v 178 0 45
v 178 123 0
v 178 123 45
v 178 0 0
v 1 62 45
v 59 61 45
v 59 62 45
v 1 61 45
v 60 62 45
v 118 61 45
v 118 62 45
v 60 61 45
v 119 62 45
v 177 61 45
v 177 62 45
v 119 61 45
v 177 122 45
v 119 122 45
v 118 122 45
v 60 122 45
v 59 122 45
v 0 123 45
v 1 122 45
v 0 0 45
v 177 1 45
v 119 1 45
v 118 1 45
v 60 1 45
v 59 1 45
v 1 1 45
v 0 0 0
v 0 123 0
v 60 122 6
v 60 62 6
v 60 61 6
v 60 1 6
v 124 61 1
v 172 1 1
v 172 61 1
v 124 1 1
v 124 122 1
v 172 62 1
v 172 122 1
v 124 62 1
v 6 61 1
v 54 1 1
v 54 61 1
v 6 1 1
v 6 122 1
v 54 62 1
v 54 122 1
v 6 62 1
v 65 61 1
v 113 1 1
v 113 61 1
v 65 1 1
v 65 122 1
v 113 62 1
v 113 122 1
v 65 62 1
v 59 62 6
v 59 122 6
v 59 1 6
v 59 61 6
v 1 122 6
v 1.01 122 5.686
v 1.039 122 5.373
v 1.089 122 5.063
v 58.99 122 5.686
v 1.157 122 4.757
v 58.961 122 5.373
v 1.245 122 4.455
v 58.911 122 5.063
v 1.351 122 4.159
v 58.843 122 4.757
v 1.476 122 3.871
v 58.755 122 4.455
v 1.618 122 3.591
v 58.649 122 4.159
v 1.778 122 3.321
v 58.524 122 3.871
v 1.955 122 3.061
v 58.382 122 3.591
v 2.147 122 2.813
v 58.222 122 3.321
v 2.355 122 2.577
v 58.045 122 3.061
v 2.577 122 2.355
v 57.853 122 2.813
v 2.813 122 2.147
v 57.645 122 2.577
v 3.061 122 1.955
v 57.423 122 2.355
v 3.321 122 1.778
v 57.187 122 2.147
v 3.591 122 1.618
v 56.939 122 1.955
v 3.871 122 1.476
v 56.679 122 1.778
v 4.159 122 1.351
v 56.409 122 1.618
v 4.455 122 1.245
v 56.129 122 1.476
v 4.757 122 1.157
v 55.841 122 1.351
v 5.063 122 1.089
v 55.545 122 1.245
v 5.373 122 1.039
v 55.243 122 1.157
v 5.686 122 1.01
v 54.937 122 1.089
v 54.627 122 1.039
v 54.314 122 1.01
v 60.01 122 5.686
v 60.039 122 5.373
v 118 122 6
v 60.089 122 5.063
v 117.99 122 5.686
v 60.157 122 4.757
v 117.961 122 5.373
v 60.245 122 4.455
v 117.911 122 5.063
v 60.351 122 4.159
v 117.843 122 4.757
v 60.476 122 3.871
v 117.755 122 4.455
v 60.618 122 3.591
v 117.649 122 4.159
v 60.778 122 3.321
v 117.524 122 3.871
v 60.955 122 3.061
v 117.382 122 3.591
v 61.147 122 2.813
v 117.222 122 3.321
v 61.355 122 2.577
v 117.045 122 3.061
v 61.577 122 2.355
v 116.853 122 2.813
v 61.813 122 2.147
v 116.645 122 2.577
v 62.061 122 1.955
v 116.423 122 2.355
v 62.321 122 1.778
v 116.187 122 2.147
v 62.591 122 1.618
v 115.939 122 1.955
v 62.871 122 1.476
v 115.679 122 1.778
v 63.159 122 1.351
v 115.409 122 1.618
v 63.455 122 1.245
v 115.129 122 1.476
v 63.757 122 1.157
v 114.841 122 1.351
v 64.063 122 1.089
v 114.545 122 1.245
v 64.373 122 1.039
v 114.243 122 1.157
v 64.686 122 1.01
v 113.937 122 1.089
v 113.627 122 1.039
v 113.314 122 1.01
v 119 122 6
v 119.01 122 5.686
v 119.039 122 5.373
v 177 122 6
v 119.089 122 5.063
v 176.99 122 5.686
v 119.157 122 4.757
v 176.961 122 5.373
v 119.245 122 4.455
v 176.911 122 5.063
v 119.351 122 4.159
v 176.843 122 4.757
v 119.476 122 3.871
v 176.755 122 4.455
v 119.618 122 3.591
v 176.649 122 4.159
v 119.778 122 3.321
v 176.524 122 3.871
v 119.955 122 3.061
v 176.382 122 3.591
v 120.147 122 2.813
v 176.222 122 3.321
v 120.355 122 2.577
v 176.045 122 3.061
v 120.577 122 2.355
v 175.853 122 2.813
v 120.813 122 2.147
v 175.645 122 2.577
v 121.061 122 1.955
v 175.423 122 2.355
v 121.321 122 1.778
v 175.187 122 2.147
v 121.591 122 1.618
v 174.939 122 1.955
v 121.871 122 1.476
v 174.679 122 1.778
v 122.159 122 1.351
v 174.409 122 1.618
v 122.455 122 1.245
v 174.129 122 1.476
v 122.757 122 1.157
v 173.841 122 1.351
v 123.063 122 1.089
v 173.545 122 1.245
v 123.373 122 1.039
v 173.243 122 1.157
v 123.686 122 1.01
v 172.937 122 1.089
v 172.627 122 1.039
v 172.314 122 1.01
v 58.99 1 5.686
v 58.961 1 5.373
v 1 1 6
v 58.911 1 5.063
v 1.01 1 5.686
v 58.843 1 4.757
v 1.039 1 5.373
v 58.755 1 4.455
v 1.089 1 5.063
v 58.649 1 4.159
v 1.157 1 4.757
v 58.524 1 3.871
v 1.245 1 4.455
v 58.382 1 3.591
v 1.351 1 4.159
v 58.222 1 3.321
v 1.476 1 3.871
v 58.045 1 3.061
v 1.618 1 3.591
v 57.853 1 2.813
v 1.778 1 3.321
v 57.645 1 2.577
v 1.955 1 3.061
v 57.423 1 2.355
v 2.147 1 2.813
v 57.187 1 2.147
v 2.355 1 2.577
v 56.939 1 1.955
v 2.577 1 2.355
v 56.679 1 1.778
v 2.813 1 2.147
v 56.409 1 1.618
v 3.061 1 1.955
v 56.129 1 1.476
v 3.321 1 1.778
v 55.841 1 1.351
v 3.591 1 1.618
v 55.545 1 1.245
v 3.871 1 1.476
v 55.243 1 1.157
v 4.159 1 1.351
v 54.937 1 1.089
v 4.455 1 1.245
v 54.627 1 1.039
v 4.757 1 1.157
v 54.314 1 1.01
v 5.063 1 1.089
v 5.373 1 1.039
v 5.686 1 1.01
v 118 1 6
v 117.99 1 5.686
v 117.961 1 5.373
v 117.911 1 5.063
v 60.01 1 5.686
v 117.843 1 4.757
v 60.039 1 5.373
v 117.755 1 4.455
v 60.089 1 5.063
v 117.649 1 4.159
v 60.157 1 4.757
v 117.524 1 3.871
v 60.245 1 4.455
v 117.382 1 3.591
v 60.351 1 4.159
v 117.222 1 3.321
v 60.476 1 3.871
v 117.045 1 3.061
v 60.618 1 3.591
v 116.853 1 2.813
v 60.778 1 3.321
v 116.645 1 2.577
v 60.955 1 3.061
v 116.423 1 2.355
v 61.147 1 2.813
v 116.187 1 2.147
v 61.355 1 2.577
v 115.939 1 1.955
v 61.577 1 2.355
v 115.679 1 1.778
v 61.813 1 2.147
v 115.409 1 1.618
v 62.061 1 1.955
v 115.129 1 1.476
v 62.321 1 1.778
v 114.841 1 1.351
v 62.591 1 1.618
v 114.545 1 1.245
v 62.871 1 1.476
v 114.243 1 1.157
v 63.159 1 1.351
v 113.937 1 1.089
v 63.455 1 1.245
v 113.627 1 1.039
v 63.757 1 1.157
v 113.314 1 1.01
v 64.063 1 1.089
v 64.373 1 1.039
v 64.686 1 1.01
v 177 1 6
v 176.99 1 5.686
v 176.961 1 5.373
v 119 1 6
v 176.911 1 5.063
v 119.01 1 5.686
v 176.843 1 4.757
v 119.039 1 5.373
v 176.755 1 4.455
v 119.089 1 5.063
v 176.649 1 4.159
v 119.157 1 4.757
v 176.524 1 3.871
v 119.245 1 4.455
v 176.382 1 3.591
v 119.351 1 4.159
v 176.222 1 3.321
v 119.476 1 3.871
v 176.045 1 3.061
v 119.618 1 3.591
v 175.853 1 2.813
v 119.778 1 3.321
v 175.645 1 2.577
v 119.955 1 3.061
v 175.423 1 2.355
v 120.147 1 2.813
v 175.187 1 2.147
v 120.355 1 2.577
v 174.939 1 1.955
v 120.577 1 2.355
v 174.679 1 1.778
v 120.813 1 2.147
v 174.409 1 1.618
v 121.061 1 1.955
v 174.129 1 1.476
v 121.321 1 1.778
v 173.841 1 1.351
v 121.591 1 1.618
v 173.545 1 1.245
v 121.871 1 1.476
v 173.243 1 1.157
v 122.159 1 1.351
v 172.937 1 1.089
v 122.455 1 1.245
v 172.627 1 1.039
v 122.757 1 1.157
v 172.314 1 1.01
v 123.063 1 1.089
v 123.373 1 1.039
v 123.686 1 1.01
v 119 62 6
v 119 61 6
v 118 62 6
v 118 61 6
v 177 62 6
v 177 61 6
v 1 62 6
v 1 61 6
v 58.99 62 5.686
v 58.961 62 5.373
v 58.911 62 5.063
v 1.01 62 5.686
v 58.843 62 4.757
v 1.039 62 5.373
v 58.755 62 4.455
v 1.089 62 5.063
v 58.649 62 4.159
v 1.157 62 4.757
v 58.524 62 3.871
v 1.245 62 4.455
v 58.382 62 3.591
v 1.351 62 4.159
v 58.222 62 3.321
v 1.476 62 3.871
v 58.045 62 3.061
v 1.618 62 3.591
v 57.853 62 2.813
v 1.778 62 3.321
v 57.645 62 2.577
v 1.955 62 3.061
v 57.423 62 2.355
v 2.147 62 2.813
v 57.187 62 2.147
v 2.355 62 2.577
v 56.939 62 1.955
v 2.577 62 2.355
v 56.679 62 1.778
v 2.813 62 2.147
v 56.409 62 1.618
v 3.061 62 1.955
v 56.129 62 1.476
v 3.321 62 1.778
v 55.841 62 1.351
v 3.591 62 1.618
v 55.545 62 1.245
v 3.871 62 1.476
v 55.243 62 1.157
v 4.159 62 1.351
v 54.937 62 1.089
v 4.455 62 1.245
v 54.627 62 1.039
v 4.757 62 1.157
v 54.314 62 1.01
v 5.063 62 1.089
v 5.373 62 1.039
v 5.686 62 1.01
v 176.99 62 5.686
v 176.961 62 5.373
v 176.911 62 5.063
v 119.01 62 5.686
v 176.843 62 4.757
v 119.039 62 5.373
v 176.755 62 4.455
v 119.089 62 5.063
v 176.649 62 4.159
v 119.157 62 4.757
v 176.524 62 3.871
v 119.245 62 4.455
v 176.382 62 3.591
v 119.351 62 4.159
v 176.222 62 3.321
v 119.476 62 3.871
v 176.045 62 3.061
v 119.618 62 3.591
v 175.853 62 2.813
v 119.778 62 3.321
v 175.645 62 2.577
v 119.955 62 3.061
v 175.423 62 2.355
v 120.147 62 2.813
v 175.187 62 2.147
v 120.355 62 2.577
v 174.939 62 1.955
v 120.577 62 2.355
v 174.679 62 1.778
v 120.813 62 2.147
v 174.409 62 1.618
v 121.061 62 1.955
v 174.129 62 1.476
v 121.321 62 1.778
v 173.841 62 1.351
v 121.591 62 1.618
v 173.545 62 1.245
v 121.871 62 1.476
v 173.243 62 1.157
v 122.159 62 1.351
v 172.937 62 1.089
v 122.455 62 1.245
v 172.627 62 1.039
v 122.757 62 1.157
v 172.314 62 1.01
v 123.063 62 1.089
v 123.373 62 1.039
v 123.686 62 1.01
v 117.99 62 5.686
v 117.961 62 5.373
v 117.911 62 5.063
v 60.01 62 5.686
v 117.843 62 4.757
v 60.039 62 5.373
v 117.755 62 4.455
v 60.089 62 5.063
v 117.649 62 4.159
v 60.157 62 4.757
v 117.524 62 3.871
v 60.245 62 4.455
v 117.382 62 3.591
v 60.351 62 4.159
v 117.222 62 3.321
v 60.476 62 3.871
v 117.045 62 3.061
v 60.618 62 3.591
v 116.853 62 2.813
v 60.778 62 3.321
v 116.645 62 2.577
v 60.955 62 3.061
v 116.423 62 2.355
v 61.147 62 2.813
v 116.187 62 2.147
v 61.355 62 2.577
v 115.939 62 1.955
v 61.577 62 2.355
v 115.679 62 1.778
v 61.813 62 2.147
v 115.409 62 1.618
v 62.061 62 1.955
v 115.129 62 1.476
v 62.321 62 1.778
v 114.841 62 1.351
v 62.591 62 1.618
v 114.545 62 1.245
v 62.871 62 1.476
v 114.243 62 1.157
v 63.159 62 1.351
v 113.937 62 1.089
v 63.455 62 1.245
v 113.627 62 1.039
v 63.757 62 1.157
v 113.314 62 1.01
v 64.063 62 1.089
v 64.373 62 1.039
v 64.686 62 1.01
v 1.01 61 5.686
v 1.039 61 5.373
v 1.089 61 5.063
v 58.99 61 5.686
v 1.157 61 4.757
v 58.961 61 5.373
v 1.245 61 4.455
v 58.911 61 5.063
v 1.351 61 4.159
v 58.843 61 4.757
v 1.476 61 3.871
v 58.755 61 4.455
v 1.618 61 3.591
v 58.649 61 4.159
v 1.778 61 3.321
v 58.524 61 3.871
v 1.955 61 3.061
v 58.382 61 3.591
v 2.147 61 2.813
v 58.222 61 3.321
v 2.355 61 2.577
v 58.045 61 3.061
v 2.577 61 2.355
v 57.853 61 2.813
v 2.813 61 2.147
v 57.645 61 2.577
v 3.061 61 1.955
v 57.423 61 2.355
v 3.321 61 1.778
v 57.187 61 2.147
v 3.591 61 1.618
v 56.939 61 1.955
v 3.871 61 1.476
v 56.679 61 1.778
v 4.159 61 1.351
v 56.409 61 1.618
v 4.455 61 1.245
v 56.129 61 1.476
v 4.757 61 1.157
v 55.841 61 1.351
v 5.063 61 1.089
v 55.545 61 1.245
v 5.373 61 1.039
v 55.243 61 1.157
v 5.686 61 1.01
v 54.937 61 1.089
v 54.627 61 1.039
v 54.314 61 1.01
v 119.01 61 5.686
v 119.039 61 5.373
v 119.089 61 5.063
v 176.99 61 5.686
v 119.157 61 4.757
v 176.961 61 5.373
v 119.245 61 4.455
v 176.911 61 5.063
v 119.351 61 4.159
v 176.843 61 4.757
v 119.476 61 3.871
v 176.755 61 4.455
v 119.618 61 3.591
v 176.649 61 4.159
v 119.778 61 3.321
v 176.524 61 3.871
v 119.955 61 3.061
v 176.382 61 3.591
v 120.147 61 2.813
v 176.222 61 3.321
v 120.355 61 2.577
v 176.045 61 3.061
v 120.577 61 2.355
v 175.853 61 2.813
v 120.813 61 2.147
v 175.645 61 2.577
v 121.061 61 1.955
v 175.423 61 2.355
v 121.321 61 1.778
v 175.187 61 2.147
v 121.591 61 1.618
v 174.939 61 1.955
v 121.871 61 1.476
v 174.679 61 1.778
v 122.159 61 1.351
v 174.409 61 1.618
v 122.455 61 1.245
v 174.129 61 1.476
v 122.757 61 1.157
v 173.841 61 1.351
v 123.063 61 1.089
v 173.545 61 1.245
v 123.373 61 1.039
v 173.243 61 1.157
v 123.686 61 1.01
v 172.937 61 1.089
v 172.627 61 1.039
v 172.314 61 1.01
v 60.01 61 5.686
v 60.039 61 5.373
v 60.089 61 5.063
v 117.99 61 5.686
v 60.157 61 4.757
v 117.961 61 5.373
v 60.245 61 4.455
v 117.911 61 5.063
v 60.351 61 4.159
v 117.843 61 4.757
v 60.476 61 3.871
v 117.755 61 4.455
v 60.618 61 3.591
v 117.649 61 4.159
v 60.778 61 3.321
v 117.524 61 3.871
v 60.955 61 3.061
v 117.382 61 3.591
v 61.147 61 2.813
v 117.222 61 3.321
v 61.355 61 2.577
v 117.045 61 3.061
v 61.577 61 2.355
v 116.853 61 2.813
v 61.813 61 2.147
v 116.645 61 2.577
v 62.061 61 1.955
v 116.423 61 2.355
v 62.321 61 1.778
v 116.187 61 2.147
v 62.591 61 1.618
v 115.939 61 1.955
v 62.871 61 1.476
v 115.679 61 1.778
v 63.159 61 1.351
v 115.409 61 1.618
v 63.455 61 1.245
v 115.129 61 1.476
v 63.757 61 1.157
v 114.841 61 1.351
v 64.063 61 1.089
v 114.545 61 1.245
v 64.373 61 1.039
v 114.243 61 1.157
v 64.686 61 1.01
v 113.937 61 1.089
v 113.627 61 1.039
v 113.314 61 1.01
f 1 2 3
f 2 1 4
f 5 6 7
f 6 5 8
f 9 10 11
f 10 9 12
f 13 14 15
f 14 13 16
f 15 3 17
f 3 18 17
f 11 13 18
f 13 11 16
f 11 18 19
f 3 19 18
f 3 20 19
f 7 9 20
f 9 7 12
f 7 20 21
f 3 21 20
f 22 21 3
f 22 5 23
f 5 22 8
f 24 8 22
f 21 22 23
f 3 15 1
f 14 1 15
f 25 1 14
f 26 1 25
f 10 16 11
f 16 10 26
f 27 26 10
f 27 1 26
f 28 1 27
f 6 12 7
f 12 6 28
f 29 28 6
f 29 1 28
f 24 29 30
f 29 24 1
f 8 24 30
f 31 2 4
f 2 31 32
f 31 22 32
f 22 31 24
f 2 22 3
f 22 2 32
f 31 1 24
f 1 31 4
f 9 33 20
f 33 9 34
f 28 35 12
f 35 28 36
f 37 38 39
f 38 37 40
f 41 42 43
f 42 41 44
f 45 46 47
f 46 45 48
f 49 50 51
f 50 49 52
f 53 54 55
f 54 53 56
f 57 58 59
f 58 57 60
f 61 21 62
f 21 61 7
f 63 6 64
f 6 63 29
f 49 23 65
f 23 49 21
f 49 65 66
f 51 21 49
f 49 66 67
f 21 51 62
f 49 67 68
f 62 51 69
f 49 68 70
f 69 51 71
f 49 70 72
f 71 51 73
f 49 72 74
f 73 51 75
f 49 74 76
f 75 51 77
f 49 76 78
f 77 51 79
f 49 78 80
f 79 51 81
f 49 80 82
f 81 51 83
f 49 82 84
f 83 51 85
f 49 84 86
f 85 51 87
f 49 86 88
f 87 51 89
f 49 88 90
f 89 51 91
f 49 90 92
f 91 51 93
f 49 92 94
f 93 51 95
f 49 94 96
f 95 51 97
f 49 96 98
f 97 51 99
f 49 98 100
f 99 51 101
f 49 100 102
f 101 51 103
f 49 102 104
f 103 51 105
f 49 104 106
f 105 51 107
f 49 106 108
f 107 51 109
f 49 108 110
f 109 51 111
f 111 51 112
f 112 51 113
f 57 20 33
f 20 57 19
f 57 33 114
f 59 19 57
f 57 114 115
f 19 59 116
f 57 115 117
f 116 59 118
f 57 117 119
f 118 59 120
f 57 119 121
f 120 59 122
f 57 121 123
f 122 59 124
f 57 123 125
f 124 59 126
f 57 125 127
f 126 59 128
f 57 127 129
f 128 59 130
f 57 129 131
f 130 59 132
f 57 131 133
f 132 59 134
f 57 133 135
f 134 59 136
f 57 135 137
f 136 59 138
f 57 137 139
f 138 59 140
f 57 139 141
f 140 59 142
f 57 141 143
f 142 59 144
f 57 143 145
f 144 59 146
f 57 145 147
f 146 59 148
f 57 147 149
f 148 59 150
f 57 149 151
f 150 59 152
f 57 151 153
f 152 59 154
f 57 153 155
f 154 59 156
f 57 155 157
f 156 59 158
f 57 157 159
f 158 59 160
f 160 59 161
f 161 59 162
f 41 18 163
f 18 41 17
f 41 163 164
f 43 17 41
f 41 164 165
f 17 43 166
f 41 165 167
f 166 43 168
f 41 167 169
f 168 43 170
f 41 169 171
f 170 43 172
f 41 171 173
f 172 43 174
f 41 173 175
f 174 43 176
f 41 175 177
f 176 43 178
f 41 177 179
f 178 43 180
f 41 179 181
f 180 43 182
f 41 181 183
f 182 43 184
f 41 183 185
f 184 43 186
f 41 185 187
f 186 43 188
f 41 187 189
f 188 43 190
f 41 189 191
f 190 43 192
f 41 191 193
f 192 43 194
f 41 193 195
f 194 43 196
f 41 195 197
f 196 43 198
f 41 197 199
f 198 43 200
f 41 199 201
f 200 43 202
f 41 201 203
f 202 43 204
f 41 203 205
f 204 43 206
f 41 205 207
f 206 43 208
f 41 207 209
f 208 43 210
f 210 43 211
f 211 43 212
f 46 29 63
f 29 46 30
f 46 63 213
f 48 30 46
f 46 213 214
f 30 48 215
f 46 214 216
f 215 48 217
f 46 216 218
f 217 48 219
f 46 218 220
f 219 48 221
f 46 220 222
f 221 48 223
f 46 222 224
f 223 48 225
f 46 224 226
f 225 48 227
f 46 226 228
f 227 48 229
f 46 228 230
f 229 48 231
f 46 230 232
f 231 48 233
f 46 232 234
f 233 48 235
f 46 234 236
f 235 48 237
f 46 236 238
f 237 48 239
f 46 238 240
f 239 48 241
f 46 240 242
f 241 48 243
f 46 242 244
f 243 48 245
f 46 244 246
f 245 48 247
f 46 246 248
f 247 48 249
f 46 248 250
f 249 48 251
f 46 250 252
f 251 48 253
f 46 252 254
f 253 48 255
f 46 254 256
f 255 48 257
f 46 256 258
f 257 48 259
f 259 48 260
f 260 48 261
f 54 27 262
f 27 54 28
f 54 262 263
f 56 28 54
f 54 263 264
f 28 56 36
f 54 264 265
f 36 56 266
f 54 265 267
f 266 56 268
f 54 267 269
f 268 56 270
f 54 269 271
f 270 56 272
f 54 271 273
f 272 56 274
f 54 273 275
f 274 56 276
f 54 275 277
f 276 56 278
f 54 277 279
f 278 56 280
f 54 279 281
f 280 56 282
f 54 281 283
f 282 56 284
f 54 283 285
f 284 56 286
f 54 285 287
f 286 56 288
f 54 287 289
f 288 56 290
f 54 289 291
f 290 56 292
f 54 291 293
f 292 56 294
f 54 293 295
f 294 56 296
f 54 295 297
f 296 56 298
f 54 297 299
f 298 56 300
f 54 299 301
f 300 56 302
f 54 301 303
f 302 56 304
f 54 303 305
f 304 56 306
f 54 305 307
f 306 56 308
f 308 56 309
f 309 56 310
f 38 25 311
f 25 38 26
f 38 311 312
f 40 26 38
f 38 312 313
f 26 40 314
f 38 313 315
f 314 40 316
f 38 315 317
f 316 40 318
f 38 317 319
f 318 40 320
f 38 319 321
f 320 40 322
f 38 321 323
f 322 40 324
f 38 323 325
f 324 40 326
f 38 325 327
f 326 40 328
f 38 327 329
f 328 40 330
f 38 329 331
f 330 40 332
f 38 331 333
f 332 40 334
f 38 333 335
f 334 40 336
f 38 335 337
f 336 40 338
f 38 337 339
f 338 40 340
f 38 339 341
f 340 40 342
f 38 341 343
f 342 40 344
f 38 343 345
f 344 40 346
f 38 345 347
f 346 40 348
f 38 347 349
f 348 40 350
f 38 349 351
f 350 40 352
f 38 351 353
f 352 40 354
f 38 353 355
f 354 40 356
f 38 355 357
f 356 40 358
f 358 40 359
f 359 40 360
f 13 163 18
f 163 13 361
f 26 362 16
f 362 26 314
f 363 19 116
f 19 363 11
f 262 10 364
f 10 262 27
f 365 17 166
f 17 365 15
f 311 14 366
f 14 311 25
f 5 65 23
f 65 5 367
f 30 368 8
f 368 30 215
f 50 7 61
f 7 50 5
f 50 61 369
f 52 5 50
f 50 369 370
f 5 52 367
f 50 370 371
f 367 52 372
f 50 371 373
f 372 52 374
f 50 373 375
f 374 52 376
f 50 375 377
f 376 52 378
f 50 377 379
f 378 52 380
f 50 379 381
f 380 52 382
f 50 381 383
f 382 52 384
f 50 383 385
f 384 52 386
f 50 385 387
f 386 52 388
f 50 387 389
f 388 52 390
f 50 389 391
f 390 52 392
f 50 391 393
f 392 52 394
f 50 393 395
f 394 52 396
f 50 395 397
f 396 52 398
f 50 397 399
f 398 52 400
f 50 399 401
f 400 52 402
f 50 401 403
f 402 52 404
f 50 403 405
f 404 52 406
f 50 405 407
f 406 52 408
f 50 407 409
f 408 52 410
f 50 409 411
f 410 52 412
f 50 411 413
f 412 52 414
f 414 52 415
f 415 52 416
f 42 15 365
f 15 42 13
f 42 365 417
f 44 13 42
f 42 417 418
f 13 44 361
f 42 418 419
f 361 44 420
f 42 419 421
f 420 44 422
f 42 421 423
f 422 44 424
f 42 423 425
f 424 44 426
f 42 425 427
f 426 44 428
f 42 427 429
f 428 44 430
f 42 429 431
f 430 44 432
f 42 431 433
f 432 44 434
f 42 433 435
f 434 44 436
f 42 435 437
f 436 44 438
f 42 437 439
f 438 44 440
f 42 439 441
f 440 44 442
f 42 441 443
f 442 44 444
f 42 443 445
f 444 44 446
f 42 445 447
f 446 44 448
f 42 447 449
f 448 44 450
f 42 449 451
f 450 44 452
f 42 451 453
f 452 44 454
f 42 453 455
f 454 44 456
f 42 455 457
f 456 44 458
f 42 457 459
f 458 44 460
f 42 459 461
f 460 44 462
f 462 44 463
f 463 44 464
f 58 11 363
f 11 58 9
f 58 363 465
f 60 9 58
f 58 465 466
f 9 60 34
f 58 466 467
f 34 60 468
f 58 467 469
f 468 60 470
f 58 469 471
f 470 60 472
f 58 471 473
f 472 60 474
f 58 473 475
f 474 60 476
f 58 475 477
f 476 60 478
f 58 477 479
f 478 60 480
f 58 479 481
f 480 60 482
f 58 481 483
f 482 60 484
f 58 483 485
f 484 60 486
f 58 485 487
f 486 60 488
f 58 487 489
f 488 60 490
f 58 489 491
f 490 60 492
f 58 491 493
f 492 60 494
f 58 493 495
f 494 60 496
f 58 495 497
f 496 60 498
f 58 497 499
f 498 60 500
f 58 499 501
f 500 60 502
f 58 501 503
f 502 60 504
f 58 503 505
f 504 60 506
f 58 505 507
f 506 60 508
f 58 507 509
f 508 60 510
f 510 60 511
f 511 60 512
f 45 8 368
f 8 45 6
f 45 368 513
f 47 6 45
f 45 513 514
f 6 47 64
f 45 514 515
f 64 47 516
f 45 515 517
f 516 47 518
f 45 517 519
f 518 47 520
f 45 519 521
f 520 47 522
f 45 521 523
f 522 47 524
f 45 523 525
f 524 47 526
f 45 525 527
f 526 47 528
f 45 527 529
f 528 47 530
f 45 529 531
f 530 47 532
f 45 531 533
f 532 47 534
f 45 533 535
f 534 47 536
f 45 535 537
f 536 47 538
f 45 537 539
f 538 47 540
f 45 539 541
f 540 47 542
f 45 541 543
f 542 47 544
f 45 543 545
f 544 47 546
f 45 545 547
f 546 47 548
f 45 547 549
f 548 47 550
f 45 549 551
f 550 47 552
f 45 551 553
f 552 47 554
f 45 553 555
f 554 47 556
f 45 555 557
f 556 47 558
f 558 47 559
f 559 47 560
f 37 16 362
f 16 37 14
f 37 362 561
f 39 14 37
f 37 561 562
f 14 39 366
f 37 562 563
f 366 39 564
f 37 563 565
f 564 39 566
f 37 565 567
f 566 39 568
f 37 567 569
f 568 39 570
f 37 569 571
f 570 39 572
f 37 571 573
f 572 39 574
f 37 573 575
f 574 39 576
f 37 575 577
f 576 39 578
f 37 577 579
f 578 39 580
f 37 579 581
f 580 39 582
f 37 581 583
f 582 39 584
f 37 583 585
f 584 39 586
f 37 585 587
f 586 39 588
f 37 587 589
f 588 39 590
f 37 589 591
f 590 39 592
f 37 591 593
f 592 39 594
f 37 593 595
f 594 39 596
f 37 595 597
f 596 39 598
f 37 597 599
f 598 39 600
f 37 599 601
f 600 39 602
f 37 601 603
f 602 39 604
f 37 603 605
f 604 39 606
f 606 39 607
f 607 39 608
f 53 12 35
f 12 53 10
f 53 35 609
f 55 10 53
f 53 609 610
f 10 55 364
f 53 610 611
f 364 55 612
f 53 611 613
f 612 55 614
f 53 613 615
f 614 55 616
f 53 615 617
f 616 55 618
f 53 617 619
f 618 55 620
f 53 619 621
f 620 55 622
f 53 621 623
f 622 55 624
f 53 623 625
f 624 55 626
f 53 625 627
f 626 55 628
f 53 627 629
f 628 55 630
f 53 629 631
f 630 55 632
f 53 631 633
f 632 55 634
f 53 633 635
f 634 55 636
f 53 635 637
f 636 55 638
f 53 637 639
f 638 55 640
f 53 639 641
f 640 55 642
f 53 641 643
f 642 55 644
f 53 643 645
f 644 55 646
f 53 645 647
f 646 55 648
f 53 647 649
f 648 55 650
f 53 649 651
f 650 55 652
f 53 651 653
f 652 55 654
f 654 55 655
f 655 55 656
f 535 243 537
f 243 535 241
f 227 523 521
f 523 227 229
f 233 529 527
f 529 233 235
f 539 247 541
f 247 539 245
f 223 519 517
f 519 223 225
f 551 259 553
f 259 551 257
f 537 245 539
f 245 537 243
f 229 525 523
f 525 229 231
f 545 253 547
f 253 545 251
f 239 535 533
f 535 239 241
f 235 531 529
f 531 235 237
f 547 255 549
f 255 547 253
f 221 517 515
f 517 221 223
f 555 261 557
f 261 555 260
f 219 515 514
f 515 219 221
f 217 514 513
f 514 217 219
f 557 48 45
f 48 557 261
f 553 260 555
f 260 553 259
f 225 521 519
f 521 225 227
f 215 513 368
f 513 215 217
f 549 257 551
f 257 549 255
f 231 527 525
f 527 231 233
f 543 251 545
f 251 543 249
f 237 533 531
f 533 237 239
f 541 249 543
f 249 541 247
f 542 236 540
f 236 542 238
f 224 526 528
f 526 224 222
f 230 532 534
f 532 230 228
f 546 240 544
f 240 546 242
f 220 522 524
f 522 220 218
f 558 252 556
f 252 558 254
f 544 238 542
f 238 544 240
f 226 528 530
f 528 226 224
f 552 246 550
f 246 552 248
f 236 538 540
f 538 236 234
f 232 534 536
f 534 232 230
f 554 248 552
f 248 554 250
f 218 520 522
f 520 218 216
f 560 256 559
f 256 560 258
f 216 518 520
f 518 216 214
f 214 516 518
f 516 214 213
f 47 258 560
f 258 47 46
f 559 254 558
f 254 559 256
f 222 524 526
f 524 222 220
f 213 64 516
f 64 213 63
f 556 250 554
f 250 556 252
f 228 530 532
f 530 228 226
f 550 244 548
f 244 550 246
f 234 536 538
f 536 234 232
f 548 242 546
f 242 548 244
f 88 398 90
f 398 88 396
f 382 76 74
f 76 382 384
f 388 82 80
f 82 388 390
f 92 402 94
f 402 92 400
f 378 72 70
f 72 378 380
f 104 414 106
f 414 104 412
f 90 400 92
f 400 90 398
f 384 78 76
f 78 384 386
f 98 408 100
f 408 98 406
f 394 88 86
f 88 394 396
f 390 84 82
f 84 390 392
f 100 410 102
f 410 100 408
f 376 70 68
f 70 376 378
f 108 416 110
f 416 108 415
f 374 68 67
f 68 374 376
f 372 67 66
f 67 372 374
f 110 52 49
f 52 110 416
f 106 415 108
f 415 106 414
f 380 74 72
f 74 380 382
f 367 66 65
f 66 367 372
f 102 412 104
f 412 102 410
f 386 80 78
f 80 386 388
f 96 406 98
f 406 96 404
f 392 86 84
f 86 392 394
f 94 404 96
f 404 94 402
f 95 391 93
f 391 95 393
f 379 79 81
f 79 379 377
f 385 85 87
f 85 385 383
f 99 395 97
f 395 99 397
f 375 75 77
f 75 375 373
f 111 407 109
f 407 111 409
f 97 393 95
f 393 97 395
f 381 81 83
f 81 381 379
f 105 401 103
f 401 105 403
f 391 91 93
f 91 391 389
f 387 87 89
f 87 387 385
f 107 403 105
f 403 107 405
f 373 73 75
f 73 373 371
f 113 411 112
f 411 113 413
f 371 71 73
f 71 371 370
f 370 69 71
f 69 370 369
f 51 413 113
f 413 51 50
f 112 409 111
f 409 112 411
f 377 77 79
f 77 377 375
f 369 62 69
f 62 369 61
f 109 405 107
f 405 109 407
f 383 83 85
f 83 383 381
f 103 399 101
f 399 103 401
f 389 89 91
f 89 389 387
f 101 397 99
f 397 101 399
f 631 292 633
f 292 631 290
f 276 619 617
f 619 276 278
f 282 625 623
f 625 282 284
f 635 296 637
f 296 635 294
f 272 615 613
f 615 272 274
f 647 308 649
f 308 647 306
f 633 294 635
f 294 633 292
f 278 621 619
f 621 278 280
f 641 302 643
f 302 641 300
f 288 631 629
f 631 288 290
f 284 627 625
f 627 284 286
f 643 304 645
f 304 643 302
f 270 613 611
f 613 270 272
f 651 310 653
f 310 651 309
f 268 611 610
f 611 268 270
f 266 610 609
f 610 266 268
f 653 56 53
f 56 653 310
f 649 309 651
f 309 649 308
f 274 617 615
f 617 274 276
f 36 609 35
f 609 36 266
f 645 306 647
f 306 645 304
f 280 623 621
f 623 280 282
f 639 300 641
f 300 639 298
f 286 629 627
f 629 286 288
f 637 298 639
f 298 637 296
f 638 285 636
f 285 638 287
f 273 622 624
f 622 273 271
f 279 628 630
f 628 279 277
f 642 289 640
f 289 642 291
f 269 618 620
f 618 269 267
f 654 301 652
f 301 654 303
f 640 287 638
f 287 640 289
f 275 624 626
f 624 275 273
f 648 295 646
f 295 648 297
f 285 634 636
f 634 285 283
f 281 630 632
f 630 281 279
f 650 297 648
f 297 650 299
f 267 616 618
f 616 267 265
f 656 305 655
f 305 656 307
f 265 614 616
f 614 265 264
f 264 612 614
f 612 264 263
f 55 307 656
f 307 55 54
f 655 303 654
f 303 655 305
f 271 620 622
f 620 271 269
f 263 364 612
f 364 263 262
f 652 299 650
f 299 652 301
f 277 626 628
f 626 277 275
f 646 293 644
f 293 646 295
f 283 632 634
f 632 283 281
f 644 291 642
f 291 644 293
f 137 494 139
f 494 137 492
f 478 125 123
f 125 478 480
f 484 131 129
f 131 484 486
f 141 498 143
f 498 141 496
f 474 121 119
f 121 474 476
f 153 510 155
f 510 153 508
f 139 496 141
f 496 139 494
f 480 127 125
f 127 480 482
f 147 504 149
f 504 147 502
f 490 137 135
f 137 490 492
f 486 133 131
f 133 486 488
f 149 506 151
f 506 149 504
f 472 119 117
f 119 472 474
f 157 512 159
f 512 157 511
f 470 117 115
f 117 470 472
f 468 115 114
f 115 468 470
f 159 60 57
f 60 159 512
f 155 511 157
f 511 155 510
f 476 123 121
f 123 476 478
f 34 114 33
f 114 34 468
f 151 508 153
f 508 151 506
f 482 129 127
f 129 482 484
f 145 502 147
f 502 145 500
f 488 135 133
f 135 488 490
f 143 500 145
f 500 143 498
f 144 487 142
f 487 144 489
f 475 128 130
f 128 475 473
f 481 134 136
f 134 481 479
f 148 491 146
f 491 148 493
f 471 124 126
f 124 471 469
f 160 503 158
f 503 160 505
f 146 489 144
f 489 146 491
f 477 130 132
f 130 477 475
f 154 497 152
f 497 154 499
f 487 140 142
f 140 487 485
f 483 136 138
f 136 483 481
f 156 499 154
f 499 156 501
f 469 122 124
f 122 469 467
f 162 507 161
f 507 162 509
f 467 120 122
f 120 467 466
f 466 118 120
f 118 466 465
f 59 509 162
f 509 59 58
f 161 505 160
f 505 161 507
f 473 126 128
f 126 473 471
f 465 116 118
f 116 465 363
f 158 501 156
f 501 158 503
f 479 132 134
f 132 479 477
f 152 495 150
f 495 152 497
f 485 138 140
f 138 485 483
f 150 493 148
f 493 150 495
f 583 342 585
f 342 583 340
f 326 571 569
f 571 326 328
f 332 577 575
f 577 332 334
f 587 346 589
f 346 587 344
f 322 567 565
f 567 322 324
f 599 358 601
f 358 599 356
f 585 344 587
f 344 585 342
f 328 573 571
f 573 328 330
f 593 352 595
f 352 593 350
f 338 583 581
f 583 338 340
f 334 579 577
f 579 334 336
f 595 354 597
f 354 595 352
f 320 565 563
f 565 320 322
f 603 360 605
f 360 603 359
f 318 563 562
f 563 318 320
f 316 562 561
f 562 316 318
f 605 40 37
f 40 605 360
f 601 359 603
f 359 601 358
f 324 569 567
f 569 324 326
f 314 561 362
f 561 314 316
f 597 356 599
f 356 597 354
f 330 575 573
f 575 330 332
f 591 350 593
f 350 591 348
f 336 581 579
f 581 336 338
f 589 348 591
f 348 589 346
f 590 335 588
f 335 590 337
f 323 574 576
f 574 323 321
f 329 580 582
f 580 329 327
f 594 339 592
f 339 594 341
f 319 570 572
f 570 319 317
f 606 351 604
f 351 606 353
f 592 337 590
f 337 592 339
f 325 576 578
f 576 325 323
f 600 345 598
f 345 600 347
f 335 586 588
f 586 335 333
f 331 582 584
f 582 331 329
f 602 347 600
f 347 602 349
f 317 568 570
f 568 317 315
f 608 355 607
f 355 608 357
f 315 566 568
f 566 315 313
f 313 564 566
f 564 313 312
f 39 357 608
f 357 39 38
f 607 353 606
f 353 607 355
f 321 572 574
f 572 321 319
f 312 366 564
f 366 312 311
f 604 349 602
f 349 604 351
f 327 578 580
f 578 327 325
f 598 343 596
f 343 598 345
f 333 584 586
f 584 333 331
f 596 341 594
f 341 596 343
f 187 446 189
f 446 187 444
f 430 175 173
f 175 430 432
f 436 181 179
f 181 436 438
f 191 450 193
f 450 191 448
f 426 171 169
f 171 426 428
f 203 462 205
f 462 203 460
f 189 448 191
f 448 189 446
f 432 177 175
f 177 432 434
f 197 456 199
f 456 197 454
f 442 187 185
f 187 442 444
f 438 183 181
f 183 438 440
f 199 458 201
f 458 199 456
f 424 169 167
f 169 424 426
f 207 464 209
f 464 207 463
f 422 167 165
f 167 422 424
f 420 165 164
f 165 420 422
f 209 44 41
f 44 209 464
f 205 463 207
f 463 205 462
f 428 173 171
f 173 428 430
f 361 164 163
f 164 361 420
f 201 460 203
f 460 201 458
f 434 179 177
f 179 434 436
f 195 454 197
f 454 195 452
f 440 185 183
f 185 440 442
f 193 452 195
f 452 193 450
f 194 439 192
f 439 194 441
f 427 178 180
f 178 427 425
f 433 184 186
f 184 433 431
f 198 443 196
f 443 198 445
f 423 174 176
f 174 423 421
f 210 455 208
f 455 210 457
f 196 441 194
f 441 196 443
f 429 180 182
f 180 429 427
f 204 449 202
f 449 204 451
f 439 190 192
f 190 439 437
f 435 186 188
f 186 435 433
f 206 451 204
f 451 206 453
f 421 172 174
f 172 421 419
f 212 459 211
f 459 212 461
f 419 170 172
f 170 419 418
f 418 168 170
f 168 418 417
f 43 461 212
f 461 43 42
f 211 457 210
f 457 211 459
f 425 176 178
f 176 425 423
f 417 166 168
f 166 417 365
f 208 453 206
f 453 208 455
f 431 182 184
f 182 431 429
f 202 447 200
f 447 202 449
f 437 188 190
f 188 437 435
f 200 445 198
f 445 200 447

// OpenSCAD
include <boardgame_insert_toolkit_lib.2.scad>;

// determines whether lids are output.
g_b_print_lid = true;

// determines whether boxes are output.
g_b_print_box = true; 

// Focus on one box
g_isolated_print_box = ""; 

// Used to visualize how all of the boxes fit together. 
g_b_visualization = false;          
        
// this is the outer wall thickness. 
//Default = 1.5mm
g_wall_thickness = 1.0;

// The tolerance value is extra space put between planes of the lid and box that fit together.
// Increase the tolerance to loosen the fit and decrease it to tighten it.
//
// Note that the tolerance is applied exclusively to the lid.
// So if the lid is too tight or too loose, change this value ( up for looser fit, down for tighter fit ) and 
// you only need to reprint the lid.
// 
// The exception is the stackable box, where the bottom of the box is the lid of the box below,
// in which case the tolerance also affects that box bottom.
//
g_tolerance = 0.15;

// This adjusts the position of the lid detents downward. 
// The larger the value, the bigger the gap between the lid and the box.
g_tolerance_detents_pos = 0.1;

aw_size_x = 178.0; // 180.0; // 308.0 - 40.0 - 40.0 - 24.0 - 24.0;
aw_size_y = 123.0;
aw_size_z = 45.0;


data =
  [
    [
      "simple box",
      [
        [ BOX_SIZE_XYZ, [aw_size_x, aw_size_y, aw_size_z] ],
        [ BOX_NO_LID_B, t],
        [
          BOX_COMPONENT,
          [
            [
              CMP_COMPARTMENT_SIZE_XYZ,
              [
                58, // (aw_size_x - 1.0 - 1.0 - 1.0 - 1.0) / 3.0,
                60, // (aw_size_y - 1.0 - 1.0 - 1.0) / 2,
                aw_size_z - g_wall_thickness
              ]
            ],
            [ CMP_NUM_COMPARTMENTS_XY, [3, 2] ],
            [ CMP_SHAPE, FILLET ],
            [ CMP_FILLET_RADIUS, 5.0 ],
            //[ CMP_CUTOUT_SIDES_4B, [ f, f, t, t ] ],
            //[ CMP_CUTOUT_HEIGHT_PCT, 60 ],
            //[ CMP_CUTOUT_DEPTH_PCT, 0 ],
            //[ CMP_CUTOUT_WIDTH_PCT, 50 ],
          ]
        ],
      ]
    ]
  ];

MakeAll();
